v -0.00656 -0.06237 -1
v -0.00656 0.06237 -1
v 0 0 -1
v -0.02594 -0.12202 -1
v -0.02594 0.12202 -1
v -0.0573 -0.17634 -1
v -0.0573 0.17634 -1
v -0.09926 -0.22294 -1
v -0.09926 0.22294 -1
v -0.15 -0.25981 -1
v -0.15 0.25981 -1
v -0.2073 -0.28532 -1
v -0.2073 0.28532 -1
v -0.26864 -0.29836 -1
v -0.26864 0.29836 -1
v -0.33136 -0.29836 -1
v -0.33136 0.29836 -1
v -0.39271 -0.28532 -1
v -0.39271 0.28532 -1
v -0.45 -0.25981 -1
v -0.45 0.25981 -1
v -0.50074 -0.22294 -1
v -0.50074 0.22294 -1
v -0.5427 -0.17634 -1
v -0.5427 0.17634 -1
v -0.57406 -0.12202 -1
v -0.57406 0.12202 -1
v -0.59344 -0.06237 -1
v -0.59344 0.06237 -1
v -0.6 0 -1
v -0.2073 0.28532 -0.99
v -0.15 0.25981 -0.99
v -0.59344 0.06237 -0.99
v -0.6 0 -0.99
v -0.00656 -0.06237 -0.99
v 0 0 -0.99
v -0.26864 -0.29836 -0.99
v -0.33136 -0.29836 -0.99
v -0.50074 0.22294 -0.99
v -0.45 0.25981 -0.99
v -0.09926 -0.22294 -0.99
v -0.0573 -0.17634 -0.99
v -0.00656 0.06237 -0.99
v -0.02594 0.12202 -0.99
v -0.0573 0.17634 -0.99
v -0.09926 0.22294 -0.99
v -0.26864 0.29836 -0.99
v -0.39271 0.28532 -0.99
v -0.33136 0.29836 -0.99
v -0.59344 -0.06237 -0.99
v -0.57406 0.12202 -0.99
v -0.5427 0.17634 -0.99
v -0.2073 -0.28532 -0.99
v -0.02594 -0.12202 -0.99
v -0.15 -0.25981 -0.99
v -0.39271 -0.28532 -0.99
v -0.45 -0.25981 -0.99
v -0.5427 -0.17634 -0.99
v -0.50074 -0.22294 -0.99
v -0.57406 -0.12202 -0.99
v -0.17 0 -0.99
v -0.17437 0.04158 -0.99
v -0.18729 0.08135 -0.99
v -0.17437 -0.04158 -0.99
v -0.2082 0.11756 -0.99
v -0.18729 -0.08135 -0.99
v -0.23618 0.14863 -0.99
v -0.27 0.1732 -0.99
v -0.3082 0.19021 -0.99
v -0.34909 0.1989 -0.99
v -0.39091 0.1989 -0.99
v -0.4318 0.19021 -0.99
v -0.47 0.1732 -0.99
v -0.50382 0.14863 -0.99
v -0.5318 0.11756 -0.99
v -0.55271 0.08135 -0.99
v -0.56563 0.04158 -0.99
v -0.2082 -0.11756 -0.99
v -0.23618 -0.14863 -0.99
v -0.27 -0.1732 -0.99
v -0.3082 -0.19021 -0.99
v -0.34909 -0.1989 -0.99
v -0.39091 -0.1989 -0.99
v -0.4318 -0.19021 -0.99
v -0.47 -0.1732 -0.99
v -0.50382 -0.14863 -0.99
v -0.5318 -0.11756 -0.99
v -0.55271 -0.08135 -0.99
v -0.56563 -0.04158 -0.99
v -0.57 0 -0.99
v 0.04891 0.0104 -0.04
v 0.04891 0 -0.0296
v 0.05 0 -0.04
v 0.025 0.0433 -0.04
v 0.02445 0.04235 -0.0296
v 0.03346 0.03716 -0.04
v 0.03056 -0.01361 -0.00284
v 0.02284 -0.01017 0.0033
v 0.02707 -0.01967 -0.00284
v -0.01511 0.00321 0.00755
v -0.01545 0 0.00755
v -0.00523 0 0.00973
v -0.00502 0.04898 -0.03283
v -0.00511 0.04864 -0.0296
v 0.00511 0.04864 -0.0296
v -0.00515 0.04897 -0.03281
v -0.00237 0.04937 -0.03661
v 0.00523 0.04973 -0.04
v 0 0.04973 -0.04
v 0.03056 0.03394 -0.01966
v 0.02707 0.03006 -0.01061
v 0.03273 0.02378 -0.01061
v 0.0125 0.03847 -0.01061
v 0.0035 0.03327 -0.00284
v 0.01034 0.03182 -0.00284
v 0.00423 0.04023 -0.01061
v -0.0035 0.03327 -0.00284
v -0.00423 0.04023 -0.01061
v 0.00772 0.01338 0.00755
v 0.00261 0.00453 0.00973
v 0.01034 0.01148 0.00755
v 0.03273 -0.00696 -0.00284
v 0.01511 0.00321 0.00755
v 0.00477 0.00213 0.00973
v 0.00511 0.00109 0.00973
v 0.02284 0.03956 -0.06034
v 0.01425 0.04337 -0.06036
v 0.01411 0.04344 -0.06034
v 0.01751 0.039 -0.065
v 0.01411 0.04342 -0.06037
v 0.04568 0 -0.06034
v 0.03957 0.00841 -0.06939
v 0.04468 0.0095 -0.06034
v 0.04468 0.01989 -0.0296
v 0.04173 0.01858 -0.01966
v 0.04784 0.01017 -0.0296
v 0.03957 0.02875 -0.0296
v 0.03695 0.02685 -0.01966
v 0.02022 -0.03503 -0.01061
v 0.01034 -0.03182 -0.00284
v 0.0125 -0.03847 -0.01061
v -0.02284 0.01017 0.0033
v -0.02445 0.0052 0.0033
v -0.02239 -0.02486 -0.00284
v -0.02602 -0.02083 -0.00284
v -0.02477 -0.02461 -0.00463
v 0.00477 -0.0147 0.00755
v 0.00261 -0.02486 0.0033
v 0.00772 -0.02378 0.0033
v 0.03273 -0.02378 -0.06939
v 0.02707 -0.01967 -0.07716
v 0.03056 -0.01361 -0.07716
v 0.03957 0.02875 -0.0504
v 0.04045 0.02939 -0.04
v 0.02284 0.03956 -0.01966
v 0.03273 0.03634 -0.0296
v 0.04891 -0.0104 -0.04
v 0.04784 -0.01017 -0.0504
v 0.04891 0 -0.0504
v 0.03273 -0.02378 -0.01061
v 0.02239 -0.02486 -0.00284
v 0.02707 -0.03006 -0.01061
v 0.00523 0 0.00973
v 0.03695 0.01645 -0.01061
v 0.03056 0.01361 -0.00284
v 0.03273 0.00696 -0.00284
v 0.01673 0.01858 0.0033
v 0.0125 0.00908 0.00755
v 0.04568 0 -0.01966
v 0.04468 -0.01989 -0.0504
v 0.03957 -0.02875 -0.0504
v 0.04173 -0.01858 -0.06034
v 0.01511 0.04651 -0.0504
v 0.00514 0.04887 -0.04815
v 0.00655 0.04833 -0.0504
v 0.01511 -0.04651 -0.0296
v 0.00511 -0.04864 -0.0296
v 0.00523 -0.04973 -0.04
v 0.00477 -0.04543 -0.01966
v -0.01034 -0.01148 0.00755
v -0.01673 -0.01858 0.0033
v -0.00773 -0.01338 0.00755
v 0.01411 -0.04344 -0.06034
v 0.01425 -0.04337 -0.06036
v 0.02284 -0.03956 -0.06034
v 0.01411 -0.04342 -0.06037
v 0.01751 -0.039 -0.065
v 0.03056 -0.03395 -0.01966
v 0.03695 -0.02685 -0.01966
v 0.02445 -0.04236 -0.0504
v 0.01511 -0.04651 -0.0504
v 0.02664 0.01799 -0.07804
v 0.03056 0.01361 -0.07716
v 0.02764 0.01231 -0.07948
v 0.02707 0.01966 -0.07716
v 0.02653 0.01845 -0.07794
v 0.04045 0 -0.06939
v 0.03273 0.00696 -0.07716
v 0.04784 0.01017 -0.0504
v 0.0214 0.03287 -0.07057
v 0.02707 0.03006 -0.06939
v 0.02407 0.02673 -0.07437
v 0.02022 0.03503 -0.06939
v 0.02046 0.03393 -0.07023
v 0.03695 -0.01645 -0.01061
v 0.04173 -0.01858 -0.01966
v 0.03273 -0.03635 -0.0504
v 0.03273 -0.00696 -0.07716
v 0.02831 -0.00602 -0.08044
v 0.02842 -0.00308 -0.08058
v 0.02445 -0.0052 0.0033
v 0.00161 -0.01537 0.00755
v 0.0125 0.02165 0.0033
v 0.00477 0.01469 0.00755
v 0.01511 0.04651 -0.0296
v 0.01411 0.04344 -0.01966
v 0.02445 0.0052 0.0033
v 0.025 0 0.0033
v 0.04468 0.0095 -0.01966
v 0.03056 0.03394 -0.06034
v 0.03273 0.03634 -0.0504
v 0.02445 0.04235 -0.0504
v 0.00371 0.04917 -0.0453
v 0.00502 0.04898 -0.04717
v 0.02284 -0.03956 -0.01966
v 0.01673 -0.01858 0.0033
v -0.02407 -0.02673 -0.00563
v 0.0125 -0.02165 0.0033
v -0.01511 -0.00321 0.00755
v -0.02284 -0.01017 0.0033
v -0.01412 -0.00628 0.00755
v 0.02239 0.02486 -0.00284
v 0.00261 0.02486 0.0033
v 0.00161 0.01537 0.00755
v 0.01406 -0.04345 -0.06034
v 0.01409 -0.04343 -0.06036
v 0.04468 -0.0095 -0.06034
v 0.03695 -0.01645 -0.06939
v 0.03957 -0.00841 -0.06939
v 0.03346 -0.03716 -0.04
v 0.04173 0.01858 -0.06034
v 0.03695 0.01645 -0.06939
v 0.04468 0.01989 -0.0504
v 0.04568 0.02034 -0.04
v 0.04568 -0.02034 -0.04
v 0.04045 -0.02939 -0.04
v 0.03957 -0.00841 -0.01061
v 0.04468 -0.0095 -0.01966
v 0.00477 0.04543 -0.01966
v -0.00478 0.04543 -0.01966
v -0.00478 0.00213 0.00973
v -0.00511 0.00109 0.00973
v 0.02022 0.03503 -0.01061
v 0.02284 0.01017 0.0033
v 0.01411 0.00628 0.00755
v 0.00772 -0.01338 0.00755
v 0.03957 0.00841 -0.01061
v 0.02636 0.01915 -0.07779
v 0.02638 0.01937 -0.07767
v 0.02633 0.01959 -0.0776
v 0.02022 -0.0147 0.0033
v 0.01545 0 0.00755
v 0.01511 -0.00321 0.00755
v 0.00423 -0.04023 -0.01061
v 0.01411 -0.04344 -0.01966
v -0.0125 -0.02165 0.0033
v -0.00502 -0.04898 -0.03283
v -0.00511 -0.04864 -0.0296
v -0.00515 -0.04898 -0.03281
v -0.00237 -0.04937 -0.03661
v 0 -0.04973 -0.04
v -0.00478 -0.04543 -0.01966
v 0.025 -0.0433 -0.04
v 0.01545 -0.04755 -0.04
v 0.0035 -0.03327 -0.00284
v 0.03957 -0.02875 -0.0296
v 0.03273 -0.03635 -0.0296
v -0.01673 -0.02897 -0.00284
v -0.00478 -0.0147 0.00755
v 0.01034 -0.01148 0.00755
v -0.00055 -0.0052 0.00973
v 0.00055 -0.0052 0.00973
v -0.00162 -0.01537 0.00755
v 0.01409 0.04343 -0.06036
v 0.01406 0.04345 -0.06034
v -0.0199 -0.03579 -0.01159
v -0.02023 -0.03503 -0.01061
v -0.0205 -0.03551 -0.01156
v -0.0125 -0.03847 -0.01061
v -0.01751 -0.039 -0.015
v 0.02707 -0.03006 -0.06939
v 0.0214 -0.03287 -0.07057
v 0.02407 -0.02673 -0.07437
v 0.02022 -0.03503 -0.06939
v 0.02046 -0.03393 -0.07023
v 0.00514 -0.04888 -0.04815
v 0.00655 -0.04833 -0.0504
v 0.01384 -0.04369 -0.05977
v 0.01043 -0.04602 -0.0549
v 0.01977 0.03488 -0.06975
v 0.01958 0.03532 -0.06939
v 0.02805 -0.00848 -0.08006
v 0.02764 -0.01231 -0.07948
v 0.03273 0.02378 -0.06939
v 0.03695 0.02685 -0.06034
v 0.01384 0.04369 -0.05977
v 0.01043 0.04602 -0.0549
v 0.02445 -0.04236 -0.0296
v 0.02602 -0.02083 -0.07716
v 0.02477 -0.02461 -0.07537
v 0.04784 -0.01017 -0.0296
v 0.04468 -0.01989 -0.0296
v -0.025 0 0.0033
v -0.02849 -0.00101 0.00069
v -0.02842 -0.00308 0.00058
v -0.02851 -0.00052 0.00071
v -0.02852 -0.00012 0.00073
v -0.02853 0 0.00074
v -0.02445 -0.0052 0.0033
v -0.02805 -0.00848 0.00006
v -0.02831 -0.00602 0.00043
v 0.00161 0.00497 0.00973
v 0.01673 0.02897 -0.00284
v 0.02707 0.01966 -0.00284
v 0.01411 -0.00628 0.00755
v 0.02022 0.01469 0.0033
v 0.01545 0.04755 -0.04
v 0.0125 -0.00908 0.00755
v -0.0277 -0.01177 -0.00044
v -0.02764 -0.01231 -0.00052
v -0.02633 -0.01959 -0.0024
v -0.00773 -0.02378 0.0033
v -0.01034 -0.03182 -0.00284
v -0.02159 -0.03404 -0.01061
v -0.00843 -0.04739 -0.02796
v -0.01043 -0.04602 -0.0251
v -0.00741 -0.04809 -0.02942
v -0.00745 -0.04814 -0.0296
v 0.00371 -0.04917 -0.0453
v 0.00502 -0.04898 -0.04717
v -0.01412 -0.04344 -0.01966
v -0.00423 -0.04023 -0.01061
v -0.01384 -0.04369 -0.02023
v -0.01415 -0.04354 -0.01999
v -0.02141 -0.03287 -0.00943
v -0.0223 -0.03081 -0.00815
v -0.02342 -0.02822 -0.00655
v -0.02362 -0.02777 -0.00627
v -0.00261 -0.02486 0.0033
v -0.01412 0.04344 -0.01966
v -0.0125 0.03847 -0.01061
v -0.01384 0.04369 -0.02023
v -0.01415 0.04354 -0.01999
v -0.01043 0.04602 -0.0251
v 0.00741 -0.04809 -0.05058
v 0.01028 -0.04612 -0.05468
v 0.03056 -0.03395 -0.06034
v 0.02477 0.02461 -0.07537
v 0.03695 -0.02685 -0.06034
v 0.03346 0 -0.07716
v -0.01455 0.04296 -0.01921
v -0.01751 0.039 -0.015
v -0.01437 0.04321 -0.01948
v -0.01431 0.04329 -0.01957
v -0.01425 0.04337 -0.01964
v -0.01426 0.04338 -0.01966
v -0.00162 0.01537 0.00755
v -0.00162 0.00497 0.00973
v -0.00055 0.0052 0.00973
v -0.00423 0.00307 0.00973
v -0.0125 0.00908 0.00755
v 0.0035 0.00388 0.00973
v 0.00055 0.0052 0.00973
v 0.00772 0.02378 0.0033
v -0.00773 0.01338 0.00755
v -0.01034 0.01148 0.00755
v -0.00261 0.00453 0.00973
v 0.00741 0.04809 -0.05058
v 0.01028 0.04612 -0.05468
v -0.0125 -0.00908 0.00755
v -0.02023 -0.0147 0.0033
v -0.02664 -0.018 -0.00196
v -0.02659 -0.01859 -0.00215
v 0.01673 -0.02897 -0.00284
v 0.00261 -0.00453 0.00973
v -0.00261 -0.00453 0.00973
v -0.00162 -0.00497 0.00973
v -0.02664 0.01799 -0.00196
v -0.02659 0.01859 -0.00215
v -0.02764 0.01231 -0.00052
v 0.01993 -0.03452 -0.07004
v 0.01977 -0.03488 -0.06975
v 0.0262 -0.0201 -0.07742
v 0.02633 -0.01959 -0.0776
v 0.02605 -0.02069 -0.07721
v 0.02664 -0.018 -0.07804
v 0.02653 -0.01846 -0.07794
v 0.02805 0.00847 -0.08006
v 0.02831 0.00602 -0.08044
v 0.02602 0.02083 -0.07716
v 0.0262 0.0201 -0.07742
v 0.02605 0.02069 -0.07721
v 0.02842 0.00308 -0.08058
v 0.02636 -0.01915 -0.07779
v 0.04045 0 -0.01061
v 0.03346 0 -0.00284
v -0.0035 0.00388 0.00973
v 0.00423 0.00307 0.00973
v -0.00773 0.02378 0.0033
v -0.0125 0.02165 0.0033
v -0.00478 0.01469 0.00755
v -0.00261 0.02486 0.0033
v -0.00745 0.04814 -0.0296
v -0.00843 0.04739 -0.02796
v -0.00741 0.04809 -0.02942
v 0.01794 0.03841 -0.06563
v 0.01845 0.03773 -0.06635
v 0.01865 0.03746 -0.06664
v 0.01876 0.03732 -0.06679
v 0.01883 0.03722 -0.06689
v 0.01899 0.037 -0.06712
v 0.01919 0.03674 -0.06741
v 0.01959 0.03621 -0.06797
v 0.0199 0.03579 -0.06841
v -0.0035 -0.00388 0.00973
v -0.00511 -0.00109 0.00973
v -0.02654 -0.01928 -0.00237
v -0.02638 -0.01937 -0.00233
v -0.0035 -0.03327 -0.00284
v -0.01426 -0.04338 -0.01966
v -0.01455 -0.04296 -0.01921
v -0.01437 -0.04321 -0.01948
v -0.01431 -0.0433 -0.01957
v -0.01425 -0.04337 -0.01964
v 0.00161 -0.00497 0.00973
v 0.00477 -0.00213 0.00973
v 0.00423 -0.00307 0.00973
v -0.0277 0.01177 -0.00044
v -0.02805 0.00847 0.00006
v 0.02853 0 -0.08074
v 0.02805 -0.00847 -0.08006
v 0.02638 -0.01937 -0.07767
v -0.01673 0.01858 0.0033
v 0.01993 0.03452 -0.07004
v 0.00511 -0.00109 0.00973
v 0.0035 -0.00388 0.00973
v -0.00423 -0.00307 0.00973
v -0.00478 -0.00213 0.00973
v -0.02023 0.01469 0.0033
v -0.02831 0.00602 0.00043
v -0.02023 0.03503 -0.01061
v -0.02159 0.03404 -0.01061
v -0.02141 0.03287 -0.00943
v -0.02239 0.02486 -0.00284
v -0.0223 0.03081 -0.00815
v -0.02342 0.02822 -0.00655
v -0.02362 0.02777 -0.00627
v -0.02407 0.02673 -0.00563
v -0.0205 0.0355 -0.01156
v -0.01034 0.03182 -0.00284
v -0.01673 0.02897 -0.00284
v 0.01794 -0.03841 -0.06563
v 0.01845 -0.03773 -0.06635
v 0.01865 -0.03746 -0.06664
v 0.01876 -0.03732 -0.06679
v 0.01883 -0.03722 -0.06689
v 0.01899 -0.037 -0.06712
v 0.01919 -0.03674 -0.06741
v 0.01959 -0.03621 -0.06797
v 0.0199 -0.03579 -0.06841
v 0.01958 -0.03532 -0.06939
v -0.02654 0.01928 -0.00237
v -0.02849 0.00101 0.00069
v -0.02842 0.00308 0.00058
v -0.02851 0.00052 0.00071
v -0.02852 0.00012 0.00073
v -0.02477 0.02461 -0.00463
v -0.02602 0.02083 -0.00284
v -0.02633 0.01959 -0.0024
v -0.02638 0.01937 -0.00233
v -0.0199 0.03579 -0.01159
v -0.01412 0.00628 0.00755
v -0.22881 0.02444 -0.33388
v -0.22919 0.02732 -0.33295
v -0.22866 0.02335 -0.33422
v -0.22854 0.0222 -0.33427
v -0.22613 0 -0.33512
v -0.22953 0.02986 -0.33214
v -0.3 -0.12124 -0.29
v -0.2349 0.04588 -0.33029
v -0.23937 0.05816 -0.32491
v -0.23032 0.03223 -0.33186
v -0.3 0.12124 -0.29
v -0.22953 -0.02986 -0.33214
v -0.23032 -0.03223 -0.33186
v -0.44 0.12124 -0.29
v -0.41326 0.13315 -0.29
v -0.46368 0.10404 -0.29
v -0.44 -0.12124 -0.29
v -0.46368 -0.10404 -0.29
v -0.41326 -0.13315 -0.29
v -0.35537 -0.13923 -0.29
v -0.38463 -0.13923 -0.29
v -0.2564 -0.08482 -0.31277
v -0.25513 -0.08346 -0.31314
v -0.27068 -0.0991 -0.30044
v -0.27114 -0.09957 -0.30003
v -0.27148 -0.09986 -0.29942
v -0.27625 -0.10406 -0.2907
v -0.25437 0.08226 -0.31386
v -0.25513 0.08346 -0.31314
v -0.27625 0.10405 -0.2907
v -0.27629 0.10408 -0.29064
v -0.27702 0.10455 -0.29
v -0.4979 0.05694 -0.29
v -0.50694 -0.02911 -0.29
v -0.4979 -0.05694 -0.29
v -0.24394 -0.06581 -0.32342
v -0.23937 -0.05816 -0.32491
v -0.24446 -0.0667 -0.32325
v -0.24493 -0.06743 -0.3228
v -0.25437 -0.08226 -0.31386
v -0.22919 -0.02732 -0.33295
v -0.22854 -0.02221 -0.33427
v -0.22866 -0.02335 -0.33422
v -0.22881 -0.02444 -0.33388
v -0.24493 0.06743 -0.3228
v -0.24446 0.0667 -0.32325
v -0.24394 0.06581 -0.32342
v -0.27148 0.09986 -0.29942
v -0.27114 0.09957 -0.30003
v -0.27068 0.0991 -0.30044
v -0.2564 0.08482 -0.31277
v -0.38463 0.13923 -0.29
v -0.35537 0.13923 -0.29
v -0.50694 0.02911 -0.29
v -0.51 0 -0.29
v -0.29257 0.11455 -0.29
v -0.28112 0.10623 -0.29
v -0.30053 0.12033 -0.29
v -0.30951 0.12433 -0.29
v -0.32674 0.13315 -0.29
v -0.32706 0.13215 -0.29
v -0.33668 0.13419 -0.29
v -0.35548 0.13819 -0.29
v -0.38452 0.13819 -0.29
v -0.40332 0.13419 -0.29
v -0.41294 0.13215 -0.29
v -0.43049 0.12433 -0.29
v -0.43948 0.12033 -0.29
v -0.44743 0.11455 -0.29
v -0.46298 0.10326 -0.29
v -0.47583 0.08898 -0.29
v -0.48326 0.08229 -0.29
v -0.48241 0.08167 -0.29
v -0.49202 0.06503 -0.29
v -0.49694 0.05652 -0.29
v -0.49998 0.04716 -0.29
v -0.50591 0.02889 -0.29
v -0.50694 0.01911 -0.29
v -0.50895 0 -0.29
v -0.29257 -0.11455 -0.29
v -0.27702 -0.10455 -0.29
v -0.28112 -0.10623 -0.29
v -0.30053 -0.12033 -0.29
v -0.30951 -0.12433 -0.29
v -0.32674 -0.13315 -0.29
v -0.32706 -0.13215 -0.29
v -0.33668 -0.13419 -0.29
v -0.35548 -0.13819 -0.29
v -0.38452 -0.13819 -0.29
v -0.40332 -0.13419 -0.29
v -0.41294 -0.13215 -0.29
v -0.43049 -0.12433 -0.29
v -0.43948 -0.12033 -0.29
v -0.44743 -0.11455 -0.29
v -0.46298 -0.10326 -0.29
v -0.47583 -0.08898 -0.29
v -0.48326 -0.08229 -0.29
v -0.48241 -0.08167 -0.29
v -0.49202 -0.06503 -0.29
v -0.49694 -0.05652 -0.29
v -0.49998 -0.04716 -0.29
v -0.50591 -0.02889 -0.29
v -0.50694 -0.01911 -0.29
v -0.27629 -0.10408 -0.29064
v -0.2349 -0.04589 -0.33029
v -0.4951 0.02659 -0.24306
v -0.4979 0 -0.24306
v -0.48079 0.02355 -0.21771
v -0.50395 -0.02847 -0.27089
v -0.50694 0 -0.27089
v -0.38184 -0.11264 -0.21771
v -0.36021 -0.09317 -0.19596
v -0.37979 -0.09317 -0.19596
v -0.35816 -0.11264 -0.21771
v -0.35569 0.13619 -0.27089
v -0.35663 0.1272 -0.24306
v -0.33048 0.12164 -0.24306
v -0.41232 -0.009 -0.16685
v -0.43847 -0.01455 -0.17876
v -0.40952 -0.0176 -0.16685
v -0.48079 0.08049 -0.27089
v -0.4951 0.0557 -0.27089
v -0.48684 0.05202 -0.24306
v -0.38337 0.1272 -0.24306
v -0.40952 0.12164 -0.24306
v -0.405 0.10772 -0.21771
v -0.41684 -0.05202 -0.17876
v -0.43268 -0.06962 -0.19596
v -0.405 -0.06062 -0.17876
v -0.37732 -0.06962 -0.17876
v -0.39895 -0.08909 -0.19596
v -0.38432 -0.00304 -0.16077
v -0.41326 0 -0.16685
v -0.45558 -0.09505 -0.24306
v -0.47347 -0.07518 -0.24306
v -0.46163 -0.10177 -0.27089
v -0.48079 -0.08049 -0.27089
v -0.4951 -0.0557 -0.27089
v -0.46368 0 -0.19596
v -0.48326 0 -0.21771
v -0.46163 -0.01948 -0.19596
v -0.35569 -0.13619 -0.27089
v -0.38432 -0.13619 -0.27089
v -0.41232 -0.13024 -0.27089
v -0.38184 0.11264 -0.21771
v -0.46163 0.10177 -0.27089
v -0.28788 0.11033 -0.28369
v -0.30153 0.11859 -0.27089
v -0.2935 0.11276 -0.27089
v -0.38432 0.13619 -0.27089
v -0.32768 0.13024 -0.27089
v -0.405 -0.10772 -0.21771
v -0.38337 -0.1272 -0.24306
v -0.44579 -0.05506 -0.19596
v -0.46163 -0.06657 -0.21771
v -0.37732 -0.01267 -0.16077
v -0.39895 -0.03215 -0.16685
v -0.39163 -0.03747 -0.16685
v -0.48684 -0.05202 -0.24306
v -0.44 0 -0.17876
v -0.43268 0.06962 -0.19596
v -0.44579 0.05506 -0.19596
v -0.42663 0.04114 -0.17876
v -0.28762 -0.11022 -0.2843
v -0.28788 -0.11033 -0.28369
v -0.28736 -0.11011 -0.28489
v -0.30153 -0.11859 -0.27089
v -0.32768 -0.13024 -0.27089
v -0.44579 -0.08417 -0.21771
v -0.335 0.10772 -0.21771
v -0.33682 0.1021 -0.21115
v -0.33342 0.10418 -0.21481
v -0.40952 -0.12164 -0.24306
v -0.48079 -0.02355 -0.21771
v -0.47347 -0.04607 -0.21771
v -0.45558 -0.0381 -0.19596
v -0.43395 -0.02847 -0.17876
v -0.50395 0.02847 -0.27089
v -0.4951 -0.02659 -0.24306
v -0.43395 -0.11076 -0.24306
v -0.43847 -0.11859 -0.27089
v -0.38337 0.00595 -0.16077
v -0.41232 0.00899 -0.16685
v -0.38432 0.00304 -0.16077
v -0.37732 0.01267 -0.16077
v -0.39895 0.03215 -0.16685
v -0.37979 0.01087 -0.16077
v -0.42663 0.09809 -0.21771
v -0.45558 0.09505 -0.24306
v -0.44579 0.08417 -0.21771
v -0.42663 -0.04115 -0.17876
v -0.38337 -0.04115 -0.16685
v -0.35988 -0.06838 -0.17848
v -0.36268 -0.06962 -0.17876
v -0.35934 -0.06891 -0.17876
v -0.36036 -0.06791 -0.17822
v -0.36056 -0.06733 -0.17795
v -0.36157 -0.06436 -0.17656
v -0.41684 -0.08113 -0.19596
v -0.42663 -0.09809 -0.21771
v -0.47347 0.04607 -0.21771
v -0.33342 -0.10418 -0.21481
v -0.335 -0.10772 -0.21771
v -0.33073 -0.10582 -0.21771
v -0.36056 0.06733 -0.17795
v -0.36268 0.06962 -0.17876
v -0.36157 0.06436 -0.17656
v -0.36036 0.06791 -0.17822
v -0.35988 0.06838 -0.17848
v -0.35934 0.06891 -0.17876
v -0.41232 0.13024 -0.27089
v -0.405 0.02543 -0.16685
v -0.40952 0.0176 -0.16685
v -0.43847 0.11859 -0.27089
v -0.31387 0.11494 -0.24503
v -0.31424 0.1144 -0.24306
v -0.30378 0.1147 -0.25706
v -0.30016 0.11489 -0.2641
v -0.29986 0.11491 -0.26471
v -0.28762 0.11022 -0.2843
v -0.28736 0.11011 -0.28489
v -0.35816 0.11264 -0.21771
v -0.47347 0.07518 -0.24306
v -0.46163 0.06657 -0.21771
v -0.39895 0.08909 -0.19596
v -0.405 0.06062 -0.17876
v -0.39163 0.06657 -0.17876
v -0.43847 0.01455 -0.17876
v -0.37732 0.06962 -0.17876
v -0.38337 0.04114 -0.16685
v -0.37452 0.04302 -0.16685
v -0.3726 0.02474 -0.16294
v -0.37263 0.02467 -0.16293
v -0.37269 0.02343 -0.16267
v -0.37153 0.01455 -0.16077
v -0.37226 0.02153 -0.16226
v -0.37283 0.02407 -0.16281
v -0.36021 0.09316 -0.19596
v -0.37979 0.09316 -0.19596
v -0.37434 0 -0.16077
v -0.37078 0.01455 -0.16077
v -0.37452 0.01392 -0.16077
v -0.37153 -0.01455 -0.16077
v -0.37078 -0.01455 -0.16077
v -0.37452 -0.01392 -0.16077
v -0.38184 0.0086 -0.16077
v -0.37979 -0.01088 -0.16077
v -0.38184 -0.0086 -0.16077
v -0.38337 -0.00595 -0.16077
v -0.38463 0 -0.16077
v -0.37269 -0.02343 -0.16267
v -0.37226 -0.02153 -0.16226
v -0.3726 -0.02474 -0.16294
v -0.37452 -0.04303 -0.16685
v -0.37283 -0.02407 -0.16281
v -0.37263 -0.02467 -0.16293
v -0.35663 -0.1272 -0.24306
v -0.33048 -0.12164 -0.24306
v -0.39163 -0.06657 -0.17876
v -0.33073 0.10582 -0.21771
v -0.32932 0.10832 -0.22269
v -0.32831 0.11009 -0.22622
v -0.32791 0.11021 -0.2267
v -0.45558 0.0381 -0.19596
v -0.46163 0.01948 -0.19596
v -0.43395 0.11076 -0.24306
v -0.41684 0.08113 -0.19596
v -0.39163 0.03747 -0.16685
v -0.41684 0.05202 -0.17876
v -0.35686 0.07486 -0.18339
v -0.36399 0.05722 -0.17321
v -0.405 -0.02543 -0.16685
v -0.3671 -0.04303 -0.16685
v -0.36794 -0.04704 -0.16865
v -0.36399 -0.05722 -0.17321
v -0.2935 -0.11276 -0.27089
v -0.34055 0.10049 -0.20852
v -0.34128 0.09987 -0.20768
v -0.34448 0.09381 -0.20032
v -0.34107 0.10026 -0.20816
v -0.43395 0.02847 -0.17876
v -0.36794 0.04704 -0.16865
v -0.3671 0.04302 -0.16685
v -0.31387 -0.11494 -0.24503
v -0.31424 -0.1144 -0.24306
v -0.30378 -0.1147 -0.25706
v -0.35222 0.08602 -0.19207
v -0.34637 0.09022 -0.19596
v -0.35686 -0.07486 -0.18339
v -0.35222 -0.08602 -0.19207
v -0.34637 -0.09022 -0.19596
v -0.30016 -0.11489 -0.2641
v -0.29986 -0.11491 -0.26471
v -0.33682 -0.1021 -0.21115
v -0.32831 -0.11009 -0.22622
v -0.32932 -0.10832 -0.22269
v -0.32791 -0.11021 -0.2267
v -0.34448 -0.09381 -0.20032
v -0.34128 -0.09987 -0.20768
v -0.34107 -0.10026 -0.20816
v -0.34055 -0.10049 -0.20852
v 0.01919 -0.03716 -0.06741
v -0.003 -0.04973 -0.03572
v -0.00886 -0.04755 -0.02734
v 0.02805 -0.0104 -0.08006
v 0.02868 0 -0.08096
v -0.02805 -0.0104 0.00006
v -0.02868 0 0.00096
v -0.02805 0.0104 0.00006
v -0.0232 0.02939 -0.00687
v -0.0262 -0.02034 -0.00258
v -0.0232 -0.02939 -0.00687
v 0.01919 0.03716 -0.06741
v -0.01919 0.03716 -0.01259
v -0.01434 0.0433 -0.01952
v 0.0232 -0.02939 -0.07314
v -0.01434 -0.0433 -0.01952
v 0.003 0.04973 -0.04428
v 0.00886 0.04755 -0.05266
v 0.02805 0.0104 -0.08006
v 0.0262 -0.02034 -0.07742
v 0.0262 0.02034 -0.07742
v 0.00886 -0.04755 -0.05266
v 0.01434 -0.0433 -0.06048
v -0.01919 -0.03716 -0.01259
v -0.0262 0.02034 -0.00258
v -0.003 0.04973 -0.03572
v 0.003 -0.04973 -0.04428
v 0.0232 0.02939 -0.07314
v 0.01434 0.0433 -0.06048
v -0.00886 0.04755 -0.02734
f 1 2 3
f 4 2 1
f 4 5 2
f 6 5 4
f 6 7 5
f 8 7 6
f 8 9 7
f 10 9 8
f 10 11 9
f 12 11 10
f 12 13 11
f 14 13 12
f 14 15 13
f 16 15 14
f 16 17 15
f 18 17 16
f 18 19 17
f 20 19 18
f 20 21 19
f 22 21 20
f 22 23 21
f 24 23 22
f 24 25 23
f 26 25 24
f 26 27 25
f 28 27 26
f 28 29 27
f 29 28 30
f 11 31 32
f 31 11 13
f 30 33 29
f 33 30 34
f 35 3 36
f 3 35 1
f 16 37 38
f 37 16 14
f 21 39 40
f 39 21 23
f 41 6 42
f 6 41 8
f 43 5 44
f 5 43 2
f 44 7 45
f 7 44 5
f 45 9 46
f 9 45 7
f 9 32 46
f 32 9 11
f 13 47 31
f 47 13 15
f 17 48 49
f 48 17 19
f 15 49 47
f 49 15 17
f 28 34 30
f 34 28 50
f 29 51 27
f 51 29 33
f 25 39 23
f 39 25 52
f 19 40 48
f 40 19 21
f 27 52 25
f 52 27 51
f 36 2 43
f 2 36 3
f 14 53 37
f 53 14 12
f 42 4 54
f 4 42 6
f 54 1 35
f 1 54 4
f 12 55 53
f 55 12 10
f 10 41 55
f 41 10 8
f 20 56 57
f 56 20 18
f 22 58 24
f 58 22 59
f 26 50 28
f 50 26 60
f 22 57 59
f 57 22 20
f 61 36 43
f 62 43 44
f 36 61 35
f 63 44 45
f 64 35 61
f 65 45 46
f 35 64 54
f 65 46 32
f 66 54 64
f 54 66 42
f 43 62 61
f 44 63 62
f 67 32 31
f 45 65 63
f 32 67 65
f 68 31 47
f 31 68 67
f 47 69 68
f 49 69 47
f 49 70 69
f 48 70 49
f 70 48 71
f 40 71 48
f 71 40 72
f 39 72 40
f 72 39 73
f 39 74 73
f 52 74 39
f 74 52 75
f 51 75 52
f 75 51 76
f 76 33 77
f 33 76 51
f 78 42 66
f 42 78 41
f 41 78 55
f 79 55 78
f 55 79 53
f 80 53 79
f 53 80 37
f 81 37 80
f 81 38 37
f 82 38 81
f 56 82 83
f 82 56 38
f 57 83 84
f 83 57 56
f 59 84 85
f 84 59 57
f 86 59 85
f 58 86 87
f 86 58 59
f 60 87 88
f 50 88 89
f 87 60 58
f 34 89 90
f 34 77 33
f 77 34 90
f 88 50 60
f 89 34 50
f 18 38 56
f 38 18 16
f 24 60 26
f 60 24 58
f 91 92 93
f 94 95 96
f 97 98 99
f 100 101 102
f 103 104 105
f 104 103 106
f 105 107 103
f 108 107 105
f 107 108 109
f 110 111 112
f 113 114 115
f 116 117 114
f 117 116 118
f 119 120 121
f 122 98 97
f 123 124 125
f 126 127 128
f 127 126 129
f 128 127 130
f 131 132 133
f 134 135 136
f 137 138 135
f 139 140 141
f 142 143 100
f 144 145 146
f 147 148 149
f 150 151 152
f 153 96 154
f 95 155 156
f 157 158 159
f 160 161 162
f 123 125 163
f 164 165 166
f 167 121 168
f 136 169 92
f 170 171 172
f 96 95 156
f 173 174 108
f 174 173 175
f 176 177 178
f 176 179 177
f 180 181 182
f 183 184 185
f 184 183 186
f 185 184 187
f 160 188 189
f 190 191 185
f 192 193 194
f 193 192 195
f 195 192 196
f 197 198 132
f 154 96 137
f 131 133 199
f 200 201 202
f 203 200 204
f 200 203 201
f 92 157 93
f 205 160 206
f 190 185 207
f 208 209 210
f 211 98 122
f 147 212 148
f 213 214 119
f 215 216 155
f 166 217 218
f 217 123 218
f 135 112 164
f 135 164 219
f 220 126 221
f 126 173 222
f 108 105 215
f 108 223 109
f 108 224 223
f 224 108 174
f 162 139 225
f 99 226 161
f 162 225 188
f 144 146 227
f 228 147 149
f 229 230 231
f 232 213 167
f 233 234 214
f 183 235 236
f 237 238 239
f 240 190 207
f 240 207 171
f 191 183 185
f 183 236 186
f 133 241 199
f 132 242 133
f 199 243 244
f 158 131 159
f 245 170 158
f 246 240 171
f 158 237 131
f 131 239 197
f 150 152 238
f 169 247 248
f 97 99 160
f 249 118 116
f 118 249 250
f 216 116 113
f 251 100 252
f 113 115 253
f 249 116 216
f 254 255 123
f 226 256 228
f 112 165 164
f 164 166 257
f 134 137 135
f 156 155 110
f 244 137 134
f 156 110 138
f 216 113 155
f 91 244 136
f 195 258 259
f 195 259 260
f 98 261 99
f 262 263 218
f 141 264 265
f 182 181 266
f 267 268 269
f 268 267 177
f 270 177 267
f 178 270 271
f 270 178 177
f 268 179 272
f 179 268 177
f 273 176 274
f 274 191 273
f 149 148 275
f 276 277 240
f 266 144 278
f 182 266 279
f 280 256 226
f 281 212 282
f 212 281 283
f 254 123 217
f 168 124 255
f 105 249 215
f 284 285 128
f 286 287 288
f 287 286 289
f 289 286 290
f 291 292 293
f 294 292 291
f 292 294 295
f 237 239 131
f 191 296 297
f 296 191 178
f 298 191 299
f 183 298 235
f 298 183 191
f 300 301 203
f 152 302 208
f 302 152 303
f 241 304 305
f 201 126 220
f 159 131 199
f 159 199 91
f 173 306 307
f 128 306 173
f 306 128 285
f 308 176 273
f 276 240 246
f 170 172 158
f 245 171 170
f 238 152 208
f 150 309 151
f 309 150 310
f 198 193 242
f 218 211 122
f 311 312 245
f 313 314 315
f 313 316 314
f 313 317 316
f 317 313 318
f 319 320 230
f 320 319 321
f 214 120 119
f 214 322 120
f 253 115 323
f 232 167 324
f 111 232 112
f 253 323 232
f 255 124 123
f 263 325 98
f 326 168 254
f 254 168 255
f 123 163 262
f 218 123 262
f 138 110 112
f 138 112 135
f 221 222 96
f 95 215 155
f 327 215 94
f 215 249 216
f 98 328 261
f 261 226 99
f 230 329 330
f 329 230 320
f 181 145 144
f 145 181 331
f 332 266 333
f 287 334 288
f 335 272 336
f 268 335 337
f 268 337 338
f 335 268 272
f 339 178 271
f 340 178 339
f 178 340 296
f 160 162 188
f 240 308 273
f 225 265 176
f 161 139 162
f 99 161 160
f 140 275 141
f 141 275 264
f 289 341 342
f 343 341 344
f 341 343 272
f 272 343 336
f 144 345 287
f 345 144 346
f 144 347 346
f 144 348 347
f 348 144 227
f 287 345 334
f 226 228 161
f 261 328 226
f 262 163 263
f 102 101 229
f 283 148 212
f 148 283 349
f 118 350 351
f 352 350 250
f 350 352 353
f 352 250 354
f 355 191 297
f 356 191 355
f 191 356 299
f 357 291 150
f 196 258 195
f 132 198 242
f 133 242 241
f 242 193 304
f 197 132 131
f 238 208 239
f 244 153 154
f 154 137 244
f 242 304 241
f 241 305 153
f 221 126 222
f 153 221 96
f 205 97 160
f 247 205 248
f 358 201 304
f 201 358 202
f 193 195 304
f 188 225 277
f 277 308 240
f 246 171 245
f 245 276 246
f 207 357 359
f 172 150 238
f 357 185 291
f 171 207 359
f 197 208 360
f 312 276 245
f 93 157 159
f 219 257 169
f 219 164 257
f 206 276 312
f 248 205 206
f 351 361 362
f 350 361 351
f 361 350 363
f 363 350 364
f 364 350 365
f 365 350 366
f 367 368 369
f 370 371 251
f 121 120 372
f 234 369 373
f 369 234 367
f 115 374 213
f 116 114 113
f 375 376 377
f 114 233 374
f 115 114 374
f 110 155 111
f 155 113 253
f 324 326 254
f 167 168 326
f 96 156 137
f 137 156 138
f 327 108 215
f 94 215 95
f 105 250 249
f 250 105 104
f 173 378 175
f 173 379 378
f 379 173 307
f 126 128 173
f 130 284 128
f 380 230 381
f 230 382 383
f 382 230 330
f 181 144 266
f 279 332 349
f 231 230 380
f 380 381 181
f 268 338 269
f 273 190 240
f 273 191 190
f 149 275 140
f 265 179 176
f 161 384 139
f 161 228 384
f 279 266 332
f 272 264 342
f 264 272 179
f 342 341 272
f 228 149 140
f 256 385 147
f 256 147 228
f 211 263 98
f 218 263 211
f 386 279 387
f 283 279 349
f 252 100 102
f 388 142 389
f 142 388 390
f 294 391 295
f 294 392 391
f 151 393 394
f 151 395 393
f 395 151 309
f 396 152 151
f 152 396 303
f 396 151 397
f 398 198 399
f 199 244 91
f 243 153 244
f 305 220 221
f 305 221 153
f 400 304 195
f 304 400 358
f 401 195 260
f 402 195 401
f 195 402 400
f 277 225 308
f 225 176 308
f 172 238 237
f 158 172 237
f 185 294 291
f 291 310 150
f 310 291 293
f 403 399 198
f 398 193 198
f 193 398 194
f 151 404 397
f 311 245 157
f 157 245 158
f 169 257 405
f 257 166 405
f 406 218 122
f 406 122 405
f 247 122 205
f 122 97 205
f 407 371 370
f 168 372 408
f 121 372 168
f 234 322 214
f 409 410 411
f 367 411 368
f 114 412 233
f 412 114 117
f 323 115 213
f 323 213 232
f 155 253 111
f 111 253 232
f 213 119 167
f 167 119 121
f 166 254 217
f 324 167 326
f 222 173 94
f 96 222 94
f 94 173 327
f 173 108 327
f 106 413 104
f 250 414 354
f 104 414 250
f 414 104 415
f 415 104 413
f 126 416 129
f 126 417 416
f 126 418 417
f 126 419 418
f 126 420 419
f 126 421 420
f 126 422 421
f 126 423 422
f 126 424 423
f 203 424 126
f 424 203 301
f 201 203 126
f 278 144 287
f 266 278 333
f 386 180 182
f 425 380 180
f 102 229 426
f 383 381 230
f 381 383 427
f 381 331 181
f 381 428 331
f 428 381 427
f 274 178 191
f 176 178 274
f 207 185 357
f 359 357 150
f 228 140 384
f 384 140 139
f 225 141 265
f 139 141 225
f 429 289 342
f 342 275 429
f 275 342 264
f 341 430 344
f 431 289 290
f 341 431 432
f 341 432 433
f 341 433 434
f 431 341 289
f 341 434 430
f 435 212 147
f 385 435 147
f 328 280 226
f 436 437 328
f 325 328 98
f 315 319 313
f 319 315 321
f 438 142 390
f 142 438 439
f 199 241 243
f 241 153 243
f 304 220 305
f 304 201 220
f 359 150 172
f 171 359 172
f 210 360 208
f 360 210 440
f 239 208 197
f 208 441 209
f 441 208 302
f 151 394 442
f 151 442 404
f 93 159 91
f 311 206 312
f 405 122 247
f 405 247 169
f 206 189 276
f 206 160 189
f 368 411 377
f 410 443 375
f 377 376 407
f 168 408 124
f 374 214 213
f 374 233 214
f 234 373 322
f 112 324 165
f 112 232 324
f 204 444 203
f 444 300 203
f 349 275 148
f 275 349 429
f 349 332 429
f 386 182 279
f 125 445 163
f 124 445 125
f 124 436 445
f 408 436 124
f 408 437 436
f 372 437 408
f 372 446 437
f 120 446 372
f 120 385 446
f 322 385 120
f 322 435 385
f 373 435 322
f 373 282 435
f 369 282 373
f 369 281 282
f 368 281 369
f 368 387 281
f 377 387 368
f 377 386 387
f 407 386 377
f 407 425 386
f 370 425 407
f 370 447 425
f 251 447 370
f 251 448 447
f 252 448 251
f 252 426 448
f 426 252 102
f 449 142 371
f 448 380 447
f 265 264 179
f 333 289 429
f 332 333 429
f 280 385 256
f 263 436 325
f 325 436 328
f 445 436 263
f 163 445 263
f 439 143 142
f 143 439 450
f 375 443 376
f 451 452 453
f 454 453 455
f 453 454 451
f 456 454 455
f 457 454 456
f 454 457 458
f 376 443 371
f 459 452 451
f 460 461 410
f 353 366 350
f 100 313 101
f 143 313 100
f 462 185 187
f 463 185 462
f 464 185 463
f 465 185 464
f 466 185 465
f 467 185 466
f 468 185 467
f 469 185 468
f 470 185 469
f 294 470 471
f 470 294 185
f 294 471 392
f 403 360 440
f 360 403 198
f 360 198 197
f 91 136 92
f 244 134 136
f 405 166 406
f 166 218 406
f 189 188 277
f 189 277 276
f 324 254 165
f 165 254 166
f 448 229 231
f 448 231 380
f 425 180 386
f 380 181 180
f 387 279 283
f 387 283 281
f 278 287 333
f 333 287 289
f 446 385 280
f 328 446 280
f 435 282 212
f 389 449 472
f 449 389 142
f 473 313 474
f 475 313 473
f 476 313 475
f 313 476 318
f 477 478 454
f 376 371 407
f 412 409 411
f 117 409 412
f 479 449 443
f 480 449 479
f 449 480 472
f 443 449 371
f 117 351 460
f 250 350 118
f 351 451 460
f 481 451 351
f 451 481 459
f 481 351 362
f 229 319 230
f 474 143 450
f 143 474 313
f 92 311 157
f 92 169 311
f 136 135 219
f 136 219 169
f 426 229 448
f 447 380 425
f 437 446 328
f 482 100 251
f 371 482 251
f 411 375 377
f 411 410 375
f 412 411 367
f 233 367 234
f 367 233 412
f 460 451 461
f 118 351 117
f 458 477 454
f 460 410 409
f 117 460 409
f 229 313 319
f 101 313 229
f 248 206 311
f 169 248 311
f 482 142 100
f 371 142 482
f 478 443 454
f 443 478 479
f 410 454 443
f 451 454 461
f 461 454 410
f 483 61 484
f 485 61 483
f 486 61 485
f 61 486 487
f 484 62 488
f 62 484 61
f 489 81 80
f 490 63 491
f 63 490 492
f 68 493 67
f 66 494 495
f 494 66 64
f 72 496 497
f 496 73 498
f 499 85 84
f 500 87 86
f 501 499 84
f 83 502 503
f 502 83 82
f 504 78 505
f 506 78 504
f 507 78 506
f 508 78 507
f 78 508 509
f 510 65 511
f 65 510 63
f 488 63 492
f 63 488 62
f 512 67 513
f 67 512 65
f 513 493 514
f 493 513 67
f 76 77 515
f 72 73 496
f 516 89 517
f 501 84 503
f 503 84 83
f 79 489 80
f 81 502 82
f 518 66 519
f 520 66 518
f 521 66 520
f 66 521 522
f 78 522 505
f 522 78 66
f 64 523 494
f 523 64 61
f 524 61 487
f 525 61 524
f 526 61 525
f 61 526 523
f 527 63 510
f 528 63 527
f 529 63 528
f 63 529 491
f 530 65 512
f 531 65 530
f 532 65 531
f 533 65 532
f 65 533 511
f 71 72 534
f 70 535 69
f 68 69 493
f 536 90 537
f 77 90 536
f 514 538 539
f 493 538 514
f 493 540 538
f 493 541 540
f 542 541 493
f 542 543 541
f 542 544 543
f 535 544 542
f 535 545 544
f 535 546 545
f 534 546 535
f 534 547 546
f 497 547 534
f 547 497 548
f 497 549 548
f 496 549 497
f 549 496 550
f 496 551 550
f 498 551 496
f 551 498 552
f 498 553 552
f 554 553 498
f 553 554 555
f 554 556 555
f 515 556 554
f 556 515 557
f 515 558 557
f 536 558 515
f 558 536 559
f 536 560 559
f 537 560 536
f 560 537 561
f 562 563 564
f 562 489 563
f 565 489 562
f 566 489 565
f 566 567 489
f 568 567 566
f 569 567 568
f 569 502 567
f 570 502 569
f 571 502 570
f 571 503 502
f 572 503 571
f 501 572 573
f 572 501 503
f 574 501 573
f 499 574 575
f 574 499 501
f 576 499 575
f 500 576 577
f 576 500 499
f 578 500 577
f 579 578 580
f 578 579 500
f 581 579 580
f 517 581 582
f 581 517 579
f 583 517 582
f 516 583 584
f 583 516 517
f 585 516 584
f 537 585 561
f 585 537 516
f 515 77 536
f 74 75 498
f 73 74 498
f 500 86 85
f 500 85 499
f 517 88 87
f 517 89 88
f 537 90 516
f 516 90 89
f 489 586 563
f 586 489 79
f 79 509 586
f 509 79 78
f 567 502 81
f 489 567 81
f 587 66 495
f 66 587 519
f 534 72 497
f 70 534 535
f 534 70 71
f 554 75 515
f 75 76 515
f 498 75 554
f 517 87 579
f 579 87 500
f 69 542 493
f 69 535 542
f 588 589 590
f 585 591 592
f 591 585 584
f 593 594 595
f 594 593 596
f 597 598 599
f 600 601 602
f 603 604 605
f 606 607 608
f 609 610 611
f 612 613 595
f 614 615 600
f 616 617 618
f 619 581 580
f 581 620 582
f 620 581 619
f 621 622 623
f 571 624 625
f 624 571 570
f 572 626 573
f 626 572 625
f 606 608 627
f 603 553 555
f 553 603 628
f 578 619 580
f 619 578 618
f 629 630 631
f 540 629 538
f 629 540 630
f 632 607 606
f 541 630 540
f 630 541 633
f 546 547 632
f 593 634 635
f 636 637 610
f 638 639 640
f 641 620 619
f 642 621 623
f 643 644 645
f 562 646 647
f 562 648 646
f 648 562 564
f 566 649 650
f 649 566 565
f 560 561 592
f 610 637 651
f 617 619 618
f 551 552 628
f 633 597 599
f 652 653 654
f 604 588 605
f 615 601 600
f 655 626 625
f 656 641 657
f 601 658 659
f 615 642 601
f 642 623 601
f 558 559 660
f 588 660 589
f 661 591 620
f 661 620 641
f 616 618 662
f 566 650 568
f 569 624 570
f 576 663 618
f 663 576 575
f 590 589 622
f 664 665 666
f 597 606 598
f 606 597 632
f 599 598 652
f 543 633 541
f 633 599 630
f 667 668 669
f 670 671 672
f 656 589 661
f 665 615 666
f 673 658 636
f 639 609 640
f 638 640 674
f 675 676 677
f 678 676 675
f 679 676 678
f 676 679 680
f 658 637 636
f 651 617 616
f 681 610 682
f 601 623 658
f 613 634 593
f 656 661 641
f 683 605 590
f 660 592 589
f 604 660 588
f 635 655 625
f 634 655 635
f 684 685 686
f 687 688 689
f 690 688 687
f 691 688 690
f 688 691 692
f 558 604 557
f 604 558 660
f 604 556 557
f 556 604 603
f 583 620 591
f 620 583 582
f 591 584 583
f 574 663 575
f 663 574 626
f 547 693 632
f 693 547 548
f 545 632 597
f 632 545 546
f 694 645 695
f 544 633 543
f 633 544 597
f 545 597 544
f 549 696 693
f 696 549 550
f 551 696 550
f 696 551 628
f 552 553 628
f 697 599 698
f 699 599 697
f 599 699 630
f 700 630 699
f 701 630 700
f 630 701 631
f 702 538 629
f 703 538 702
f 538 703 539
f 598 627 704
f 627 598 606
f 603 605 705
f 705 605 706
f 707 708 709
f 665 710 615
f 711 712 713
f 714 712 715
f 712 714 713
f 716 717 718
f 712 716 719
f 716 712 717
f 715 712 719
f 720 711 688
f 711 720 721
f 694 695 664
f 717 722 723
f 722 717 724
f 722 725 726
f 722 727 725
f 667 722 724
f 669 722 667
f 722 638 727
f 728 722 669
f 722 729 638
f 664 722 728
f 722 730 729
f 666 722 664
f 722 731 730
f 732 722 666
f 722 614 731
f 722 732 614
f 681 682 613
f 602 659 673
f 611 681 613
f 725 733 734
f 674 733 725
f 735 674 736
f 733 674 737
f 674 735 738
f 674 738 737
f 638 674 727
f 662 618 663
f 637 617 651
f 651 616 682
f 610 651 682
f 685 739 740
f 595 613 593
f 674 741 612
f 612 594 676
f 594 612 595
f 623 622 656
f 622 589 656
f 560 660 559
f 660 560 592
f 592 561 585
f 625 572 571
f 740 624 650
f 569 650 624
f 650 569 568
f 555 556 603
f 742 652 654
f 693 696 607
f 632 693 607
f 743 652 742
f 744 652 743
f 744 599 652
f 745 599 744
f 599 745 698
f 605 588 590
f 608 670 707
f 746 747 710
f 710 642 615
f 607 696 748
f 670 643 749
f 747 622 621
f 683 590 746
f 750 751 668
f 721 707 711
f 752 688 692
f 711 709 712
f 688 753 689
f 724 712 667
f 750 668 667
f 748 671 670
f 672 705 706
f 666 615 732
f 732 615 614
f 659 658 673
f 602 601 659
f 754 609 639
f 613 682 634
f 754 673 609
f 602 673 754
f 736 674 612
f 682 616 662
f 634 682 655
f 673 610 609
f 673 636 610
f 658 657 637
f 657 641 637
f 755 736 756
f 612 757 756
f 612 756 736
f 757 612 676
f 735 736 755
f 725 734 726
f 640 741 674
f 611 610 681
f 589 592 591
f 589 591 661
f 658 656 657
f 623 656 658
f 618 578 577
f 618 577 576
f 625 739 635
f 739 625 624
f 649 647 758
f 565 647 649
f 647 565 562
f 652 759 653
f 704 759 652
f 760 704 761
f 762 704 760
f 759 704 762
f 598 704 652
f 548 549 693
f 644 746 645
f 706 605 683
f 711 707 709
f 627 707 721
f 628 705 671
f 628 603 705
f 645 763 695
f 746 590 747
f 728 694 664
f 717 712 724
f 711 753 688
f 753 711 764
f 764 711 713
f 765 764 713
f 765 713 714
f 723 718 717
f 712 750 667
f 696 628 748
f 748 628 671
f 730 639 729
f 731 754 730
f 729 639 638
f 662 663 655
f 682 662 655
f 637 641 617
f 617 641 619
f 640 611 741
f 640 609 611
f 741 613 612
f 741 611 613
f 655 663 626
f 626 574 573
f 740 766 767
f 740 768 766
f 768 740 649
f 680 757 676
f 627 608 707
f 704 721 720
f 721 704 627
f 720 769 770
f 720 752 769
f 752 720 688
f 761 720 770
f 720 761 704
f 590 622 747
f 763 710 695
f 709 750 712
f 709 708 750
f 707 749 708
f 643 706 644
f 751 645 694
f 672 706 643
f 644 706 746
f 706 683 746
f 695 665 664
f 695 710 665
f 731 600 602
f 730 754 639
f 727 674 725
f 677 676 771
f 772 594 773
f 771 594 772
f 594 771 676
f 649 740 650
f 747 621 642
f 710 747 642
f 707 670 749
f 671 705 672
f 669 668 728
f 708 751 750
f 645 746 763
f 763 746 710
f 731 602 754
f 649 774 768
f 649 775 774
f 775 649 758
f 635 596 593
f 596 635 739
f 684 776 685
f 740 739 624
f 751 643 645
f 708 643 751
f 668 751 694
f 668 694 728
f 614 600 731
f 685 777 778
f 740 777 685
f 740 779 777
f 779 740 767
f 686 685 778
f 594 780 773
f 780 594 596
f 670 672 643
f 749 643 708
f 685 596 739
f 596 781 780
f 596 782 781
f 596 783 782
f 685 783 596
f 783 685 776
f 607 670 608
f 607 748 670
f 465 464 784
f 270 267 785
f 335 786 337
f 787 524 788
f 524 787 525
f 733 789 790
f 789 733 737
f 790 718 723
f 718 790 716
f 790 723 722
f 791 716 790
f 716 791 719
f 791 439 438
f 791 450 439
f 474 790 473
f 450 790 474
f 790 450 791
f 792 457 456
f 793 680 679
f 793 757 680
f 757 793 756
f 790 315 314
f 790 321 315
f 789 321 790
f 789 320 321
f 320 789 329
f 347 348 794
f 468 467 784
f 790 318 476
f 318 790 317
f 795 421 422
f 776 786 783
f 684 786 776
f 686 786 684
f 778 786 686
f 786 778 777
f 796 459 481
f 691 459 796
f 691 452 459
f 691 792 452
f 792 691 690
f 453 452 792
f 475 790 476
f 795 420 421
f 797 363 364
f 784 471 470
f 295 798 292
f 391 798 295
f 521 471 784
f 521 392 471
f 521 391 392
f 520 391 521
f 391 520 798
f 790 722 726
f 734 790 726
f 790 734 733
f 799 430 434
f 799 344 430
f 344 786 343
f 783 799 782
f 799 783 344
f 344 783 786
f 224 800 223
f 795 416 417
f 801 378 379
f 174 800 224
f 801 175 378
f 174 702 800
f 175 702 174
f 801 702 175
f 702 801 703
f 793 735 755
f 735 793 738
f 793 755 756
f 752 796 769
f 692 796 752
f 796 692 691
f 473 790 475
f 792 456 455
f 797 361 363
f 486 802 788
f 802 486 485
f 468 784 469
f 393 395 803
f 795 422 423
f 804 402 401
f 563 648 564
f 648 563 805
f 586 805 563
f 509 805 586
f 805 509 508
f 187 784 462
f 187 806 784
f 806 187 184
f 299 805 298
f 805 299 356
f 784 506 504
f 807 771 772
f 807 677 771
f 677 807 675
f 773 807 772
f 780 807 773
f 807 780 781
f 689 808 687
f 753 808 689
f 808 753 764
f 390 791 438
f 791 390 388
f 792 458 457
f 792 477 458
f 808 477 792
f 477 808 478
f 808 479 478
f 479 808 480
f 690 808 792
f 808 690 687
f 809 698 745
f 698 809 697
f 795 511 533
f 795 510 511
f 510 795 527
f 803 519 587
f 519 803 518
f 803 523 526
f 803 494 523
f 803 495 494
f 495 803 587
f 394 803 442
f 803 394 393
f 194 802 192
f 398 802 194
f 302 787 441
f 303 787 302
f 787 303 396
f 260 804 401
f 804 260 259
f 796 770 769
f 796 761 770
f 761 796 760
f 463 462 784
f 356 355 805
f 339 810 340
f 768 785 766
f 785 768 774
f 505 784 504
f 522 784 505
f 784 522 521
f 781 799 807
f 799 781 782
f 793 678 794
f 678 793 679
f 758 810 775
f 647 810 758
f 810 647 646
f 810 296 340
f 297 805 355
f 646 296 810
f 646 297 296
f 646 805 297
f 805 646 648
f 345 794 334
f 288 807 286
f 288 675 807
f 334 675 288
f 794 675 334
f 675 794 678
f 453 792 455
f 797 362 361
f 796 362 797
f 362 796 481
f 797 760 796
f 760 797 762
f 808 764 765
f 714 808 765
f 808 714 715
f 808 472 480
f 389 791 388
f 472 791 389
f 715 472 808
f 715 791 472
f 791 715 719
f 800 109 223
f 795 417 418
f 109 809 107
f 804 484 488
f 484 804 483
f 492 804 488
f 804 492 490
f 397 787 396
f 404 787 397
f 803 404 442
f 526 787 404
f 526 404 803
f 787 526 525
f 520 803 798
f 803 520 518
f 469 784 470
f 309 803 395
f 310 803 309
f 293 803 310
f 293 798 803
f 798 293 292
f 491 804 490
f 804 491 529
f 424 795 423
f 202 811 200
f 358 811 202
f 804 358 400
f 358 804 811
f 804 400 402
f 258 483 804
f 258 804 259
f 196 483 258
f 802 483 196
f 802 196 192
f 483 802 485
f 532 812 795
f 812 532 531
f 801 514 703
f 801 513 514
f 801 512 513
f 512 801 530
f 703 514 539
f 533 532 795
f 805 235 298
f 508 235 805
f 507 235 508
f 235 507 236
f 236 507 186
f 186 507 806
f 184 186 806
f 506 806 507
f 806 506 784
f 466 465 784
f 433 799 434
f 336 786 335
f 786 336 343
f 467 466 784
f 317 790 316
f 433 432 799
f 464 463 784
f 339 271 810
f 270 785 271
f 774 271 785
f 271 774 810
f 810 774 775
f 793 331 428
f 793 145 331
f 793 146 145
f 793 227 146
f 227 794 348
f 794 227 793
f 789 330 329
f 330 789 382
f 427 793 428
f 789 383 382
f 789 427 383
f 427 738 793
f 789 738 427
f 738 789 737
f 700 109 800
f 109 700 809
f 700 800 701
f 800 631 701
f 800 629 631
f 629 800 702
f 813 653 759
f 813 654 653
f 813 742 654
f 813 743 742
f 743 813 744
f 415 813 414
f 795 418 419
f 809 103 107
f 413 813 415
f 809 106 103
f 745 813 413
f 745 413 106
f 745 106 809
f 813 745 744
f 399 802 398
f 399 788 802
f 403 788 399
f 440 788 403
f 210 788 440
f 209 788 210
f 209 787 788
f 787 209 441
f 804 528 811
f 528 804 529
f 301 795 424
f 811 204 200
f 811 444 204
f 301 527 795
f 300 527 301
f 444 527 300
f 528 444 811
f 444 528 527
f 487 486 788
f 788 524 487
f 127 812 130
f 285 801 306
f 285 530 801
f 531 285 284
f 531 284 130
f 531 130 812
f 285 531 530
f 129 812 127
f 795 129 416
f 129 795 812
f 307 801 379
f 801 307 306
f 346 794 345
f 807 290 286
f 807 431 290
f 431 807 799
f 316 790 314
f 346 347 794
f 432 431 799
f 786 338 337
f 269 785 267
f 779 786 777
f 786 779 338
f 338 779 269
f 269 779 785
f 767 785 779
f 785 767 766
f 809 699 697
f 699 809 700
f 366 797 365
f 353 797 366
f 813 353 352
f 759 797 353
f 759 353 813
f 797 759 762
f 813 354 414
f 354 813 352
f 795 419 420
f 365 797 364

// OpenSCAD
//----------------------------------------------
// Custom Support size must be 1x1x1 
//----------------------------------------------
$fn=30;

translate([-0.5,-0.5,-1.0]) 
union() {
    translate([0.2,0.5,0.0]) cylinder ( h = 0.01, r = 0.3, center = false);
    translate([0.5,0.5,0.96]) sphere ( r = 0.05);
    translate([0.13,0.5,0.01]) cylinder ( h = 0.7, r1 = 0.2, r2 = 0.14, center = false);
    translate([0.13,0.5,0.7]) sphere ( r = 0.14);
    translate([0.5,0.5,0.96]) rotate(-125,[0,1,0]) cylinder ( h = 0.4, r1 = 0.05, r2 = 0.12, center = false);
}
